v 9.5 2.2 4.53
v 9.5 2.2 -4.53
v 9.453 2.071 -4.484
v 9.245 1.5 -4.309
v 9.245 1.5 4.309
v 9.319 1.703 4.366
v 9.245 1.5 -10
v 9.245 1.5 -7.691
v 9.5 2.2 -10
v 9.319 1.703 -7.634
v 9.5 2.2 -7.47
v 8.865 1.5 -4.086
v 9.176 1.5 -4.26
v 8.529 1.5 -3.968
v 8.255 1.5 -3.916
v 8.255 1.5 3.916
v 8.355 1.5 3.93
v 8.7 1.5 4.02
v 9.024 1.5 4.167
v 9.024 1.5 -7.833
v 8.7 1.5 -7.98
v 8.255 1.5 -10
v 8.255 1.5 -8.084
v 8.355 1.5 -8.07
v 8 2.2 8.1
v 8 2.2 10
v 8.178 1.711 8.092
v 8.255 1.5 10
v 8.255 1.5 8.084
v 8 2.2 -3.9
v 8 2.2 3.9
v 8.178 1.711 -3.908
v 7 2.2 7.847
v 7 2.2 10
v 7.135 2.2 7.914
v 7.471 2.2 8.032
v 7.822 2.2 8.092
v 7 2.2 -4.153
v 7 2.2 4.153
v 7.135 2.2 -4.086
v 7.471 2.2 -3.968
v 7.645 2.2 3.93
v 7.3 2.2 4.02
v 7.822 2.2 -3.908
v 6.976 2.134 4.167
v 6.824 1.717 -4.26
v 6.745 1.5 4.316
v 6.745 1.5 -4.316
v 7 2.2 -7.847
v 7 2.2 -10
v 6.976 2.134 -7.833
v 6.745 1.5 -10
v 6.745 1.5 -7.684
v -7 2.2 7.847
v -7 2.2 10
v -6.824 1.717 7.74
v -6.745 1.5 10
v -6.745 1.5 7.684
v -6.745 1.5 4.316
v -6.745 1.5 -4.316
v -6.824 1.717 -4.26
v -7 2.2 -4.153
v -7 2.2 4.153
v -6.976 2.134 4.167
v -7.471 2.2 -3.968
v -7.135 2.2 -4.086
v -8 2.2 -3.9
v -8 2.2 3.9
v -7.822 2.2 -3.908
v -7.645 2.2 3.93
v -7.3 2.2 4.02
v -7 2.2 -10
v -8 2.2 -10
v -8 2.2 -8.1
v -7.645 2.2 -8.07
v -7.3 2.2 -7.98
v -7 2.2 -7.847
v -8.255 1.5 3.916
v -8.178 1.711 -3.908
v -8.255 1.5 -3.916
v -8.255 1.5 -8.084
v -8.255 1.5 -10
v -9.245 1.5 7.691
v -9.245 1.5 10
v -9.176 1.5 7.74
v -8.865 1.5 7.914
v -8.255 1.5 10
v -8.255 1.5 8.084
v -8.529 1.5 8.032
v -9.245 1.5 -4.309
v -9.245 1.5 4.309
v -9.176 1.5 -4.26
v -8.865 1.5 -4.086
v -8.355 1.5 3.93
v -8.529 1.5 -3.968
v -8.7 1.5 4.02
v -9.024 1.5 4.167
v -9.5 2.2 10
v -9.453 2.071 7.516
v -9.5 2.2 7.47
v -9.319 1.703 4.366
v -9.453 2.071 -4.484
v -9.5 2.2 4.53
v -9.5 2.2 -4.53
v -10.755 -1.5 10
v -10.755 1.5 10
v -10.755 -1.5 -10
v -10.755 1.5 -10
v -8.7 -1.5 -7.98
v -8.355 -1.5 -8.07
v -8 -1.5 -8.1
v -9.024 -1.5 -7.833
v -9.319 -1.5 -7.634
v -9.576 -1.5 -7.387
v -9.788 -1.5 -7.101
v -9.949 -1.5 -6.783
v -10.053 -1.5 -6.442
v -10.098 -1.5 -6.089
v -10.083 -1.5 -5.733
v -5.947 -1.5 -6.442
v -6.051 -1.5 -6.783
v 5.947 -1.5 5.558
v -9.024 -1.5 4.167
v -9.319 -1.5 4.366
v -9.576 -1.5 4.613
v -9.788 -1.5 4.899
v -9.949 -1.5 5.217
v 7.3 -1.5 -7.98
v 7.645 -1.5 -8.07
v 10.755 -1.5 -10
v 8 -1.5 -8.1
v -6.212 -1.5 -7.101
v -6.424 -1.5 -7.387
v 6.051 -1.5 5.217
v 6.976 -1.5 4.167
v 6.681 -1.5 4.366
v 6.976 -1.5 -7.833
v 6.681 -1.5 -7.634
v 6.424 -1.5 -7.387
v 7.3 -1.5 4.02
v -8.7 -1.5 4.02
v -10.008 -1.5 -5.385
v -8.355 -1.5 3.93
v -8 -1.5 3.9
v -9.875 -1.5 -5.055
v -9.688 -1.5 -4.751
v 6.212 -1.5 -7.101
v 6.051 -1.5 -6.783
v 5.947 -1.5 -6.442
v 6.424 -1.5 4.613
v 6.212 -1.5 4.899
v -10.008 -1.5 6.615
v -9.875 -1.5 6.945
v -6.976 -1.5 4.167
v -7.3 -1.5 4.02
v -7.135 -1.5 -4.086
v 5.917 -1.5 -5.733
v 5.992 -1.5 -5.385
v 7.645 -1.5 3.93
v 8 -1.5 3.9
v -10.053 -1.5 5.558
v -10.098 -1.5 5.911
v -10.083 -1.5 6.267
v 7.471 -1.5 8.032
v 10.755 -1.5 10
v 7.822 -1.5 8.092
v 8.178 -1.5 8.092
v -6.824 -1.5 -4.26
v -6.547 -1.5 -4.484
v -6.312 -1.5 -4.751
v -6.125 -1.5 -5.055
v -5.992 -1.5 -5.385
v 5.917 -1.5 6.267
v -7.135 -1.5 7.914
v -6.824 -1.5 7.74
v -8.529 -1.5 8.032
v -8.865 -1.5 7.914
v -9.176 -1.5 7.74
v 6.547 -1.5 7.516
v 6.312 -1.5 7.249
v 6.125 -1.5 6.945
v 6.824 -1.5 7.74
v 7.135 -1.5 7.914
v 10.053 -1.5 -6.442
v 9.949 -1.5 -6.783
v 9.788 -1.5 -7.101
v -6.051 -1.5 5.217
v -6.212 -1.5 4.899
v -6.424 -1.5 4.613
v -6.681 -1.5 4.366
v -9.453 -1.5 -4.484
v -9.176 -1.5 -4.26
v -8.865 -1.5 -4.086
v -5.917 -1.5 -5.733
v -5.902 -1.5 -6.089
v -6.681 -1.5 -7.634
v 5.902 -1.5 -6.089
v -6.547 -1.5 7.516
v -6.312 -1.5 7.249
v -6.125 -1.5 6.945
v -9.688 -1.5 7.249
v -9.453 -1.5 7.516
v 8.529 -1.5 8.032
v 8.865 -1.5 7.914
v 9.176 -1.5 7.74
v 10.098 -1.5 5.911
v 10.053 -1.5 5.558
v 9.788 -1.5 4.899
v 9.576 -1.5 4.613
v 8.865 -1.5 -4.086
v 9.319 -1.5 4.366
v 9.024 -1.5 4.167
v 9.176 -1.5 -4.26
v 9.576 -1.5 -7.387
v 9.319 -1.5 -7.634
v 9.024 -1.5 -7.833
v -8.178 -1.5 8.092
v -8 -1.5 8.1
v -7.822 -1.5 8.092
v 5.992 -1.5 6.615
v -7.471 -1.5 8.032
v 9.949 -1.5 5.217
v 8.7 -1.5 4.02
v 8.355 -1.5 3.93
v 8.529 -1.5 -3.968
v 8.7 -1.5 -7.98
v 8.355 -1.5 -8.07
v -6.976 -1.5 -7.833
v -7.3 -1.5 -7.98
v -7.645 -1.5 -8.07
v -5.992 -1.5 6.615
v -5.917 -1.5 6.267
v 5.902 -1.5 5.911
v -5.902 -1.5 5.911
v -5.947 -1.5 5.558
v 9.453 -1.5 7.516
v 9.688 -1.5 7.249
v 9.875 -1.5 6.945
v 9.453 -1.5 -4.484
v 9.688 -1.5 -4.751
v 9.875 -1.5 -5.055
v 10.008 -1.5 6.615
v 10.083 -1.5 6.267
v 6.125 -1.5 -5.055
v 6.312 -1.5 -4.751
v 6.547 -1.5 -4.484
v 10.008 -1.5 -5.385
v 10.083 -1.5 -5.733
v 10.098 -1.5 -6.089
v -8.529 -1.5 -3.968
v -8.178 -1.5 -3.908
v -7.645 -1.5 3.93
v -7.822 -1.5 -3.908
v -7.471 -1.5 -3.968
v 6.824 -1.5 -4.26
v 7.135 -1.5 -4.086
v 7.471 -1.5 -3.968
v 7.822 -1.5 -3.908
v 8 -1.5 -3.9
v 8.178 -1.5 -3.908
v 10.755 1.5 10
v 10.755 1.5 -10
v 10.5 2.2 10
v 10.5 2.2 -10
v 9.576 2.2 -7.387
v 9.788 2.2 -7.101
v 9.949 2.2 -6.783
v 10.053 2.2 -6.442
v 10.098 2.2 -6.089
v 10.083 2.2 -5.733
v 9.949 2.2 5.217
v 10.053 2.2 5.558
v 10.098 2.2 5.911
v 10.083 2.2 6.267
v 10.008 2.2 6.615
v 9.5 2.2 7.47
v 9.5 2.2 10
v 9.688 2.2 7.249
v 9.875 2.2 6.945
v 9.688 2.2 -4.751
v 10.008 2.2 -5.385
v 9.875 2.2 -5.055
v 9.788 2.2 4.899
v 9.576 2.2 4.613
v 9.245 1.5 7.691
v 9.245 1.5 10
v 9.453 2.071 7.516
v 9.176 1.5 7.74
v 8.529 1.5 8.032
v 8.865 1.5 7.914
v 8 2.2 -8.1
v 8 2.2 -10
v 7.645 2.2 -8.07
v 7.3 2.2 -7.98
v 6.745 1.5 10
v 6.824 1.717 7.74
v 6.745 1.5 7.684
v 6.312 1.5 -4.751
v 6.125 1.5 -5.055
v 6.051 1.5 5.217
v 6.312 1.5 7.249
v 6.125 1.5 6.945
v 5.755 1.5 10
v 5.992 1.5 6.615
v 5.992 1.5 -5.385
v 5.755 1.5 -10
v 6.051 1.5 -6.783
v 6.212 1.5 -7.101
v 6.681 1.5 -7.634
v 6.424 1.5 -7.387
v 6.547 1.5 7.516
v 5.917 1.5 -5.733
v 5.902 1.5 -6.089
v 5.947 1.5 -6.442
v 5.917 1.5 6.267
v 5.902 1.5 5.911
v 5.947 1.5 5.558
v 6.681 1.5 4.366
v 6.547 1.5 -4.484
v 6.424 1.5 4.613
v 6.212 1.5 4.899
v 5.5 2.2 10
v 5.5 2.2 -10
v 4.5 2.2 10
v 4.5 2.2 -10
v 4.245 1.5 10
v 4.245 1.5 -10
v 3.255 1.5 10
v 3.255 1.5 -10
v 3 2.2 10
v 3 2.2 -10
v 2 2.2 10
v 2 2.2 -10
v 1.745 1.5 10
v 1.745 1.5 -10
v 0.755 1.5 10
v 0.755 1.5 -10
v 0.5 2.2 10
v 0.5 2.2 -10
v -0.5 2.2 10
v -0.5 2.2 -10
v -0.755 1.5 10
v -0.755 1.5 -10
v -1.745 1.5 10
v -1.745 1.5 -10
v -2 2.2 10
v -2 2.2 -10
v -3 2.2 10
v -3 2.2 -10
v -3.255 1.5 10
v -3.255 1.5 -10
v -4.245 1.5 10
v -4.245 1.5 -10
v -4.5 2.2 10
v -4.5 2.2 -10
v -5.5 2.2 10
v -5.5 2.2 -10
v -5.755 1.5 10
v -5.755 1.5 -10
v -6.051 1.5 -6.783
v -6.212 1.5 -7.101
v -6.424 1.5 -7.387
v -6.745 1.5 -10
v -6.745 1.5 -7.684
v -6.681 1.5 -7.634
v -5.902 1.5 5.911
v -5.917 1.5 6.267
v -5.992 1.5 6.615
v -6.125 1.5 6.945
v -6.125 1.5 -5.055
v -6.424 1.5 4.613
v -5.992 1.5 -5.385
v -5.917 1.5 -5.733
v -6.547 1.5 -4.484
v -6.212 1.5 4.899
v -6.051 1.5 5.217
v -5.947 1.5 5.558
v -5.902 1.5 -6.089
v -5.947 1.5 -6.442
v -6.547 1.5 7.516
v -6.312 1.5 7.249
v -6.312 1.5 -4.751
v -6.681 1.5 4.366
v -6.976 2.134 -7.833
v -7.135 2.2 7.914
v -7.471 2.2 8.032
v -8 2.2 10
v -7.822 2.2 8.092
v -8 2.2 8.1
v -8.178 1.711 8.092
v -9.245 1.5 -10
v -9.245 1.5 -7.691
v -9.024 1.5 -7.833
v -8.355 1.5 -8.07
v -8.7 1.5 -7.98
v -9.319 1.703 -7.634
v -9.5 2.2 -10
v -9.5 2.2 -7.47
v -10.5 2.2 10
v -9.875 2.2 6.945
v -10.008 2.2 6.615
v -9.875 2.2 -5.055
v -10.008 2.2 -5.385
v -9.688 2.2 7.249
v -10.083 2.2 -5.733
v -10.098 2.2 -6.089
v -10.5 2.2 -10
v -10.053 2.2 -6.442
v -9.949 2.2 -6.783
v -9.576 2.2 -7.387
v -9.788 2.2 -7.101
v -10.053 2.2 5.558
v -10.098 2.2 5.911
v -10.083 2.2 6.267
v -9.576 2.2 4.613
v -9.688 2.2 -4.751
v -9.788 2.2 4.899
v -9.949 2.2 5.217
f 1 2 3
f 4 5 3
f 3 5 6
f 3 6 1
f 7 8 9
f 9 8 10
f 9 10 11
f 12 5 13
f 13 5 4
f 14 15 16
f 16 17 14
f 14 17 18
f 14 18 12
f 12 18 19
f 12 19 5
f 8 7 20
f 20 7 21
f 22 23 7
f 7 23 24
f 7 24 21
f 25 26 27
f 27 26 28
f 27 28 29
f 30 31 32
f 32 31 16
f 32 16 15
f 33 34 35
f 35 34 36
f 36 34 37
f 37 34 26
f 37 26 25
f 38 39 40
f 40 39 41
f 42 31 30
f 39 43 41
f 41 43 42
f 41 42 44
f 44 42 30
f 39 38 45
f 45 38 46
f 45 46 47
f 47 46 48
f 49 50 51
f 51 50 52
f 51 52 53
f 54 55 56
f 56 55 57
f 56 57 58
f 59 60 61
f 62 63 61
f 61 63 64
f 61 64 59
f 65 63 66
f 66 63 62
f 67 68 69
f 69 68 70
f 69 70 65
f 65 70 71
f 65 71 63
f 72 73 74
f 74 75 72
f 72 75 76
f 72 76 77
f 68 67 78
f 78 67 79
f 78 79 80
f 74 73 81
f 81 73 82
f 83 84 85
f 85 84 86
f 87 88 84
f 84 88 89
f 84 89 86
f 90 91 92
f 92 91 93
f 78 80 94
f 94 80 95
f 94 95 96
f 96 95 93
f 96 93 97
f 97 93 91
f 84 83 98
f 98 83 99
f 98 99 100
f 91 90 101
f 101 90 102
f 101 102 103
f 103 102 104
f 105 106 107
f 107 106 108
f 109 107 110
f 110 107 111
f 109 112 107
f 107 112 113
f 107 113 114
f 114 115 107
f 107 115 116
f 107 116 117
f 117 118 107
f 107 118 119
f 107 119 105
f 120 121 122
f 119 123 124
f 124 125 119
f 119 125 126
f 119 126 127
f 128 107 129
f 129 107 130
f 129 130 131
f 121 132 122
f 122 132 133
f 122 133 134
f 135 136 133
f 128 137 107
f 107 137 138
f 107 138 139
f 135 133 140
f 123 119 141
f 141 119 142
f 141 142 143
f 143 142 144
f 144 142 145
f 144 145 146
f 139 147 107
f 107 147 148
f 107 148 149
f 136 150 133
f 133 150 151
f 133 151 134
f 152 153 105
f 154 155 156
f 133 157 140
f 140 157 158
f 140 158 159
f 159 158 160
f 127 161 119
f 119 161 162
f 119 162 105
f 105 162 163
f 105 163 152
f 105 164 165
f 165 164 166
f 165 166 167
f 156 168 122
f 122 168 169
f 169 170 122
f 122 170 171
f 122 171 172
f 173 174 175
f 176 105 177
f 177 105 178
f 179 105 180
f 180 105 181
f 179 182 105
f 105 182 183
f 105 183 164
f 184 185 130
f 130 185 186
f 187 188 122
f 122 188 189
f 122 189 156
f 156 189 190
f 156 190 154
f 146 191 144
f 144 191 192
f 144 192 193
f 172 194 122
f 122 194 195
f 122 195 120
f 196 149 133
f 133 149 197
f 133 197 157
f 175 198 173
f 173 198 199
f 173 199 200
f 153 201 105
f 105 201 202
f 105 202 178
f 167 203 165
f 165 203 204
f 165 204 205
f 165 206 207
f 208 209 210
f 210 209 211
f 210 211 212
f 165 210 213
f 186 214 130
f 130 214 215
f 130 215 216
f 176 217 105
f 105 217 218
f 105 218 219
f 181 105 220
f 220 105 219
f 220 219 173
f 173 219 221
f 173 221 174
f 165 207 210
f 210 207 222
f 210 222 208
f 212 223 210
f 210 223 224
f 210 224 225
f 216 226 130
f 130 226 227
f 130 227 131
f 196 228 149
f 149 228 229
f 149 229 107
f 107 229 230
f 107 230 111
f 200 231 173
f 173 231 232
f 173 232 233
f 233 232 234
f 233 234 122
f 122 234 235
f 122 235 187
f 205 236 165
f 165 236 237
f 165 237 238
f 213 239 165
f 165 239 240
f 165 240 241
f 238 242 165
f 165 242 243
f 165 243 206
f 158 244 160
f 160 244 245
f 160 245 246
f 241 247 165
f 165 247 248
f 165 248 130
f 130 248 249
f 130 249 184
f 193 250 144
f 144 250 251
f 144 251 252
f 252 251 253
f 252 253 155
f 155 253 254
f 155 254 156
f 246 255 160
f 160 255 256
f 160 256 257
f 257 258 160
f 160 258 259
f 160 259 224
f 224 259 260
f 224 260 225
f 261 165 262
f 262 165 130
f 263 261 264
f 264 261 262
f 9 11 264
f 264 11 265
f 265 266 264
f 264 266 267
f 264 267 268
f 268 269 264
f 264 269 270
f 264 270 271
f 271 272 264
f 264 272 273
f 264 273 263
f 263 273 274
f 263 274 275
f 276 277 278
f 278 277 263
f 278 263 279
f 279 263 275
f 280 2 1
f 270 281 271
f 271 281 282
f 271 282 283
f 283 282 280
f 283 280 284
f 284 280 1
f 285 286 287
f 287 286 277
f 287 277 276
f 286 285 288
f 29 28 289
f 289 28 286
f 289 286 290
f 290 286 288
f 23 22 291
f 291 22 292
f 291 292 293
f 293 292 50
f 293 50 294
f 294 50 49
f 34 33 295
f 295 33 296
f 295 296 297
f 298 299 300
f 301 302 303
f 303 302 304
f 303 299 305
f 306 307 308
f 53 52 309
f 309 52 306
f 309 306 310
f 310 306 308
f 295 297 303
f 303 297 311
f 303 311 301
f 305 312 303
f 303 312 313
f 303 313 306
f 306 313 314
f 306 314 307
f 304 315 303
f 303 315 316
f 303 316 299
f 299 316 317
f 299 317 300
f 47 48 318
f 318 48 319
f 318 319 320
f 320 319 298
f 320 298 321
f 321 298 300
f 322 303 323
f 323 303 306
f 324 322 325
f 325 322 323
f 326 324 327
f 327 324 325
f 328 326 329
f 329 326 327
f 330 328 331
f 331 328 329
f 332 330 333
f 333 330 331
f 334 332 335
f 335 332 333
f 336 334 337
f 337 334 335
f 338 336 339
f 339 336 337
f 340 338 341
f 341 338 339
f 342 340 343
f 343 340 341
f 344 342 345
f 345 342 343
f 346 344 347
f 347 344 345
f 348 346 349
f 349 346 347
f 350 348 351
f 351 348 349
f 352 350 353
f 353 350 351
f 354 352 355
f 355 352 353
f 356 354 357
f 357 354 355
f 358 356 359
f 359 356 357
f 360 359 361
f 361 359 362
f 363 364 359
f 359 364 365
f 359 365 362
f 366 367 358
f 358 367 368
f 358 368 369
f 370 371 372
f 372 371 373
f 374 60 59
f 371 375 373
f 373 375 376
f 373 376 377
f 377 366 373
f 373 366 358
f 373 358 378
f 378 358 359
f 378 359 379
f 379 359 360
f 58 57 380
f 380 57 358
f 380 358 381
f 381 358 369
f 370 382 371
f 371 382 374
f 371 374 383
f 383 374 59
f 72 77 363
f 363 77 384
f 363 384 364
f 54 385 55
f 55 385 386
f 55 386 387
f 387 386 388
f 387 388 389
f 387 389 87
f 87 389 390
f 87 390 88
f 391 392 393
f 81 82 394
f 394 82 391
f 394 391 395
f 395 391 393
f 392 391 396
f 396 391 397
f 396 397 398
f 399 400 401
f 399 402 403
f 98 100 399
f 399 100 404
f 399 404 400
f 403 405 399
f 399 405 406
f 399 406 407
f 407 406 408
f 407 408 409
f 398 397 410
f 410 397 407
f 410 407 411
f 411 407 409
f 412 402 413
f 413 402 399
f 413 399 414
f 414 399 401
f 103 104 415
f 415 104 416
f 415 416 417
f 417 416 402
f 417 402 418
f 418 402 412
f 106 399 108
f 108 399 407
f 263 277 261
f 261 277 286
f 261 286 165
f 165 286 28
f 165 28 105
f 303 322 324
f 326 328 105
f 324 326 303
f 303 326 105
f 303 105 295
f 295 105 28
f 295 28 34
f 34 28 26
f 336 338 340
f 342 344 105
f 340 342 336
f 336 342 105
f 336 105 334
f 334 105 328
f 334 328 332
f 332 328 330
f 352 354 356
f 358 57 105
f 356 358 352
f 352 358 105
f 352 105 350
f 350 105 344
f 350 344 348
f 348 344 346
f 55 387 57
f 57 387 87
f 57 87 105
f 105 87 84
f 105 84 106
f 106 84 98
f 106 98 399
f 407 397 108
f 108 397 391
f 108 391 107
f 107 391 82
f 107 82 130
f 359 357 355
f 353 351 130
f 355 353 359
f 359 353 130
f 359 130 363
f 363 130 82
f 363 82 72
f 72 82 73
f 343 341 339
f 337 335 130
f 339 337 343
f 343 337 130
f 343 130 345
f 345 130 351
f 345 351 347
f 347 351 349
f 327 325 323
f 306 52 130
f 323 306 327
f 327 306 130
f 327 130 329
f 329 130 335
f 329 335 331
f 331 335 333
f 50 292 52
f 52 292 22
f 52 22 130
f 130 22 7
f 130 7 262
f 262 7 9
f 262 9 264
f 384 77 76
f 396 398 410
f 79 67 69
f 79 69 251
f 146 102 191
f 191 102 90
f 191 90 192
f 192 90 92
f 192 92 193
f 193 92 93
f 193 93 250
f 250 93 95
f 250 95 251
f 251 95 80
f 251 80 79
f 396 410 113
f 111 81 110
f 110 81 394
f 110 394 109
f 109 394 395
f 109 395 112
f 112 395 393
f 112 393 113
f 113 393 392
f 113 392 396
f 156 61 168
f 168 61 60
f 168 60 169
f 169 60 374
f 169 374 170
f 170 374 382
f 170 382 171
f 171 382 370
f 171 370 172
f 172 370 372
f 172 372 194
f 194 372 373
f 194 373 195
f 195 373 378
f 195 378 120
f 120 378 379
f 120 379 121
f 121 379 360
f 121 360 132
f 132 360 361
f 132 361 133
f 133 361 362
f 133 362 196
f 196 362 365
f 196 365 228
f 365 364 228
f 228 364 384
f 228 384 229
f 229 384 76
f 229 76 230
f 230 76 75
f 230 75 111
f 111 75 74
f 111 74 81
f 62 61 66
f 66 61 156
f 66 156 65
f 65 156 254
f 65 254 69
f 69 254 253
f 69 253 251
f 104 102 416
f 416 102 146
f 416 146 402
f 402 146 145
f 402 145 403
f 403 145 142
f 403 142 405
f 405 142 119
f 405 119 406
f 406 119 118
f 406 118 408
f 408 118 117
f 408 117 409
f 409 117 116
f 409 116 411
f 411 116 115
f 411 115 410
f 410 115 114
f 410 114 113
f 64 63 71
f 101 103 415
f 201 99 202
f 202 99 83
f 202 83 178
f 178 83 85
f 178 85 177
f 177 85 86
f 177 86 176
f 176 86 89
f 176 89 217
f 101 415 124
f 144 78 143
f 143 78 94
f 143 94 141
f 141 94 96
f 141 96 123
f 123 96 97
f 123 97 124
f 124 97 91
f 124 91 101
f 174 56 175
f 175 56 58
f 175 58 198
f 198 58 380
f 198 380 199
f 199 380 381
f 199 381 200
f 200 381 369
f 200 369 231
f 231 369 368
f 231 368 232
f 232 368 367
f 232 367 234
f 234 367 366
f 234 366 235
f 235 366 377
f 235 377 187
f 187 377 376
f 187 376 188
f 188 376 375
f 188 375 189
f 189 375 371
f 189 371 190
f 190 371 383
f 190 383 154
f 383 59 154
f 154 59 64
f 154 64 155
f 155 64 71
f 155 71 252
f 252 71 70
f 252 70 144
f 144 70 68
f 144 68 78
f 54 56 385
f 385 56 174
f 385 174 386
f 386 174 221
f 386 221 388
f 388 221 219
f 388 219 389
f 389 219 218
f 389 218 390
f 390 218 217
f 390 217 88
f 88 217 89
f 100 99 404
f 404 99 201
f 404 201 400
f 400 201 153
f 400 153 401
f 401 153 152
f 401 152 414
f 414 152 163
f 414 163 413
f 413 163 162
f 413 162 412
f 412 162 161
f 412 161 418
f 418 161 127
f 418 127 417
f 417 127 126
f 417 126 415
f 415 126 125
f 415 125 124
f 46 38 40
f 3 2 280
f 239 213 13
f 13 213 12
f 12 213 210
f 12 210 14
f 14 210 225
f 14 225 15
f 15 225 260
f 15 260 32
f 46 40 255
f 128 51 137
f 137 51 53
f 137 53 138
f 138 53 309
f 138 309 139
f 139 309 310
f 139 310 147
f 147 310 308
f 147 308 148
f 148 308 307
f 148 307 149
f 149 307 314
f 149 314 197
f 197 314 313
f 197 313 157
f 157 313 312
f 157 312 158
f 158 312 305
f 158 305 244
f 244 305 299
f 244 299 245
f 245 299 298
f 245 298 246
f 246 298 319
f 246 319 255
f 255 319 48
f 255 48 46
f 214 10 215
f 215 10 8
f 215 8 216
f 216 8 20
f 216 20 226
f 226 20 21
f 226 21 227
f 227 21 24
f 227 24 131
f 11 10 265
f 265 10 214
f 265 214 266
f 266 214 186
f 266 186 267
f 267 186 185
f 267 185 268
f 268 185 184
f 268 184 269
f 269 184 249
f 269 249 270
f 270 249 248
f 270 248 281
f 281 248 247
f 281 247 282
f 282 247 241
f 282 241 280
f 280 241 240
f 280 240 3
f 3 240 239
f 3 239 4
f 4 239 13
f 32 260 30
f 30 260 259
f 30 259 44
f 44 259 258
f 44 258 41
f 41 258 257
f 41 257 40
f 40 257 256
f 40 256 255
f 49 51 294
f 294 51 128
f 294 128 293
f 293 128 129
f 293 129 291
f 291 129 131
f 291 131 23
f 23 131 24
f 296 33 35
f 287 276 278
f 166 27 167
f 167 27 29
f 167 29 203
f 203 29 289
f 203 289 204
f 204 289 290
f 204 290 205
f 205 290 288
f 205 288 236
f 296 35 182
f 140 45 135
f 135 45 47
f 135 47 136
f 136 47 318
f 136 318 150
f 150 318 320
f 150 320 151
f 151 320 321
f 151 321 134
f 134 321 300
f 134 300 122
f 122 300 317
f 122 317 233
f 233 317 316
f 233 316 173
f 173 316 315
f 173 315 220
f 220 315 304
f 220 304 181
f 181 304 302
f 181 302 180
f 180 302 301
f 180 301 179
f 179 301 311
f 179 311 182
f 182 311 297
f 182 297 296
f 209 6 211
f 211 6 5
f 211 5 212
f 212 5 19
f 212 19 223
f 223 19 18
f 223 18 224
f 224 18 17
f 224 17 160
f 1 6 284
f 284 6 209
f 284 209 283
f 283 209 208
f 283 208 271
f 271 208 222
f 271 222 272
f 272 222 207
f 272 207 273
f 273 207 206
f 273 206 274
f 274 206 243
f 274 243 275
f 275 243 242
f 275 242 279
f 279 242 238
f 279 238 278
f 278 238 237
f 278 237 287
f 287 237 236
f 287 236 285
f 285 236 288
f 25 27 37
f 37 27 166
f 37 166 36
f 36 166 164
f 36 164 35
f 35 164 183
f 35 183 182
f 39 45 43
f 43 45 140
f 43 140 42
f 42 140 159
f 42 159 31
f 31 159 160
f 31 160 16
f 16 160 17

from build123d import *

# Parameters (mm, degrees)
BOSS_EXTRUDE1_DEPTH = 10
SKETCH2_R           = 2.1
CUT_EXTRUDE1_DEPTH  = 4.7


with BuildPart() as part:
    # Sketch1 → Boss-Extrude1 (new body, symmetric)
    with BuildSketch(Plane.XY):
        Polygon((-10.754779164, 1.5), (-10.5, 2.2), (-9.5, 2.2), (-9.245220836, 1.5), (-8.254779164, 1.5), (-8, 2.2), (-7, 2.2), (-6.745220836, 1.5), (-5.754779164, 1.5), (-5.5, 2.2), (-4.5, 2.2), (-4.245220836, 1.5), (-3.254779164, 1.5), (-3, 2.2), (-2, 2.2), (-1.745220836, 1.5), (-0.754779164, 1.5), (-0.5, 2.2), (0.5, 2.2), (0.754779164, 1.5), (1.745220836, 1.5), (2, 2.2), (3, 2.2), (3.254779164, 1.5), (4.245220836, 1.5), (4.5, 2.2), (5.5, 2.2), (5.754779164, 1.5), (6.745220836, 1.5), (7, 2.2), (8, 2.2), (8.254779164, 1.5), (9.245220836, 1.5), (9.5, 2.2), (10.5, 2.2), (10.754779164, 1.5), (10.754779164, -1.5), (-10.754779164, -1.5), align=None)
    extrude(amount=BOSS_EXTRUDE1_DEPTH, both=True)

    # Sketch2 → Cut-Extrude1 (cut, through all)
    with BuildSketch(Plane.XZ.offset(1.5)):
        with Locations((-8, -6)):
            Circle(SKETCH2_R)
        with Locations((8, -6)):
            Circle(SKETCH2_R)
        with Locations((8, 6)):
            Circle(SKETCH2_R)
        with Locations((-8, 6)):
            Circle(SKETCH2_R)
    extrude(amount=-CUT_EXTRUDE1_DEPTH, mode=Mode.SUBTRACT)


solid = part.part
